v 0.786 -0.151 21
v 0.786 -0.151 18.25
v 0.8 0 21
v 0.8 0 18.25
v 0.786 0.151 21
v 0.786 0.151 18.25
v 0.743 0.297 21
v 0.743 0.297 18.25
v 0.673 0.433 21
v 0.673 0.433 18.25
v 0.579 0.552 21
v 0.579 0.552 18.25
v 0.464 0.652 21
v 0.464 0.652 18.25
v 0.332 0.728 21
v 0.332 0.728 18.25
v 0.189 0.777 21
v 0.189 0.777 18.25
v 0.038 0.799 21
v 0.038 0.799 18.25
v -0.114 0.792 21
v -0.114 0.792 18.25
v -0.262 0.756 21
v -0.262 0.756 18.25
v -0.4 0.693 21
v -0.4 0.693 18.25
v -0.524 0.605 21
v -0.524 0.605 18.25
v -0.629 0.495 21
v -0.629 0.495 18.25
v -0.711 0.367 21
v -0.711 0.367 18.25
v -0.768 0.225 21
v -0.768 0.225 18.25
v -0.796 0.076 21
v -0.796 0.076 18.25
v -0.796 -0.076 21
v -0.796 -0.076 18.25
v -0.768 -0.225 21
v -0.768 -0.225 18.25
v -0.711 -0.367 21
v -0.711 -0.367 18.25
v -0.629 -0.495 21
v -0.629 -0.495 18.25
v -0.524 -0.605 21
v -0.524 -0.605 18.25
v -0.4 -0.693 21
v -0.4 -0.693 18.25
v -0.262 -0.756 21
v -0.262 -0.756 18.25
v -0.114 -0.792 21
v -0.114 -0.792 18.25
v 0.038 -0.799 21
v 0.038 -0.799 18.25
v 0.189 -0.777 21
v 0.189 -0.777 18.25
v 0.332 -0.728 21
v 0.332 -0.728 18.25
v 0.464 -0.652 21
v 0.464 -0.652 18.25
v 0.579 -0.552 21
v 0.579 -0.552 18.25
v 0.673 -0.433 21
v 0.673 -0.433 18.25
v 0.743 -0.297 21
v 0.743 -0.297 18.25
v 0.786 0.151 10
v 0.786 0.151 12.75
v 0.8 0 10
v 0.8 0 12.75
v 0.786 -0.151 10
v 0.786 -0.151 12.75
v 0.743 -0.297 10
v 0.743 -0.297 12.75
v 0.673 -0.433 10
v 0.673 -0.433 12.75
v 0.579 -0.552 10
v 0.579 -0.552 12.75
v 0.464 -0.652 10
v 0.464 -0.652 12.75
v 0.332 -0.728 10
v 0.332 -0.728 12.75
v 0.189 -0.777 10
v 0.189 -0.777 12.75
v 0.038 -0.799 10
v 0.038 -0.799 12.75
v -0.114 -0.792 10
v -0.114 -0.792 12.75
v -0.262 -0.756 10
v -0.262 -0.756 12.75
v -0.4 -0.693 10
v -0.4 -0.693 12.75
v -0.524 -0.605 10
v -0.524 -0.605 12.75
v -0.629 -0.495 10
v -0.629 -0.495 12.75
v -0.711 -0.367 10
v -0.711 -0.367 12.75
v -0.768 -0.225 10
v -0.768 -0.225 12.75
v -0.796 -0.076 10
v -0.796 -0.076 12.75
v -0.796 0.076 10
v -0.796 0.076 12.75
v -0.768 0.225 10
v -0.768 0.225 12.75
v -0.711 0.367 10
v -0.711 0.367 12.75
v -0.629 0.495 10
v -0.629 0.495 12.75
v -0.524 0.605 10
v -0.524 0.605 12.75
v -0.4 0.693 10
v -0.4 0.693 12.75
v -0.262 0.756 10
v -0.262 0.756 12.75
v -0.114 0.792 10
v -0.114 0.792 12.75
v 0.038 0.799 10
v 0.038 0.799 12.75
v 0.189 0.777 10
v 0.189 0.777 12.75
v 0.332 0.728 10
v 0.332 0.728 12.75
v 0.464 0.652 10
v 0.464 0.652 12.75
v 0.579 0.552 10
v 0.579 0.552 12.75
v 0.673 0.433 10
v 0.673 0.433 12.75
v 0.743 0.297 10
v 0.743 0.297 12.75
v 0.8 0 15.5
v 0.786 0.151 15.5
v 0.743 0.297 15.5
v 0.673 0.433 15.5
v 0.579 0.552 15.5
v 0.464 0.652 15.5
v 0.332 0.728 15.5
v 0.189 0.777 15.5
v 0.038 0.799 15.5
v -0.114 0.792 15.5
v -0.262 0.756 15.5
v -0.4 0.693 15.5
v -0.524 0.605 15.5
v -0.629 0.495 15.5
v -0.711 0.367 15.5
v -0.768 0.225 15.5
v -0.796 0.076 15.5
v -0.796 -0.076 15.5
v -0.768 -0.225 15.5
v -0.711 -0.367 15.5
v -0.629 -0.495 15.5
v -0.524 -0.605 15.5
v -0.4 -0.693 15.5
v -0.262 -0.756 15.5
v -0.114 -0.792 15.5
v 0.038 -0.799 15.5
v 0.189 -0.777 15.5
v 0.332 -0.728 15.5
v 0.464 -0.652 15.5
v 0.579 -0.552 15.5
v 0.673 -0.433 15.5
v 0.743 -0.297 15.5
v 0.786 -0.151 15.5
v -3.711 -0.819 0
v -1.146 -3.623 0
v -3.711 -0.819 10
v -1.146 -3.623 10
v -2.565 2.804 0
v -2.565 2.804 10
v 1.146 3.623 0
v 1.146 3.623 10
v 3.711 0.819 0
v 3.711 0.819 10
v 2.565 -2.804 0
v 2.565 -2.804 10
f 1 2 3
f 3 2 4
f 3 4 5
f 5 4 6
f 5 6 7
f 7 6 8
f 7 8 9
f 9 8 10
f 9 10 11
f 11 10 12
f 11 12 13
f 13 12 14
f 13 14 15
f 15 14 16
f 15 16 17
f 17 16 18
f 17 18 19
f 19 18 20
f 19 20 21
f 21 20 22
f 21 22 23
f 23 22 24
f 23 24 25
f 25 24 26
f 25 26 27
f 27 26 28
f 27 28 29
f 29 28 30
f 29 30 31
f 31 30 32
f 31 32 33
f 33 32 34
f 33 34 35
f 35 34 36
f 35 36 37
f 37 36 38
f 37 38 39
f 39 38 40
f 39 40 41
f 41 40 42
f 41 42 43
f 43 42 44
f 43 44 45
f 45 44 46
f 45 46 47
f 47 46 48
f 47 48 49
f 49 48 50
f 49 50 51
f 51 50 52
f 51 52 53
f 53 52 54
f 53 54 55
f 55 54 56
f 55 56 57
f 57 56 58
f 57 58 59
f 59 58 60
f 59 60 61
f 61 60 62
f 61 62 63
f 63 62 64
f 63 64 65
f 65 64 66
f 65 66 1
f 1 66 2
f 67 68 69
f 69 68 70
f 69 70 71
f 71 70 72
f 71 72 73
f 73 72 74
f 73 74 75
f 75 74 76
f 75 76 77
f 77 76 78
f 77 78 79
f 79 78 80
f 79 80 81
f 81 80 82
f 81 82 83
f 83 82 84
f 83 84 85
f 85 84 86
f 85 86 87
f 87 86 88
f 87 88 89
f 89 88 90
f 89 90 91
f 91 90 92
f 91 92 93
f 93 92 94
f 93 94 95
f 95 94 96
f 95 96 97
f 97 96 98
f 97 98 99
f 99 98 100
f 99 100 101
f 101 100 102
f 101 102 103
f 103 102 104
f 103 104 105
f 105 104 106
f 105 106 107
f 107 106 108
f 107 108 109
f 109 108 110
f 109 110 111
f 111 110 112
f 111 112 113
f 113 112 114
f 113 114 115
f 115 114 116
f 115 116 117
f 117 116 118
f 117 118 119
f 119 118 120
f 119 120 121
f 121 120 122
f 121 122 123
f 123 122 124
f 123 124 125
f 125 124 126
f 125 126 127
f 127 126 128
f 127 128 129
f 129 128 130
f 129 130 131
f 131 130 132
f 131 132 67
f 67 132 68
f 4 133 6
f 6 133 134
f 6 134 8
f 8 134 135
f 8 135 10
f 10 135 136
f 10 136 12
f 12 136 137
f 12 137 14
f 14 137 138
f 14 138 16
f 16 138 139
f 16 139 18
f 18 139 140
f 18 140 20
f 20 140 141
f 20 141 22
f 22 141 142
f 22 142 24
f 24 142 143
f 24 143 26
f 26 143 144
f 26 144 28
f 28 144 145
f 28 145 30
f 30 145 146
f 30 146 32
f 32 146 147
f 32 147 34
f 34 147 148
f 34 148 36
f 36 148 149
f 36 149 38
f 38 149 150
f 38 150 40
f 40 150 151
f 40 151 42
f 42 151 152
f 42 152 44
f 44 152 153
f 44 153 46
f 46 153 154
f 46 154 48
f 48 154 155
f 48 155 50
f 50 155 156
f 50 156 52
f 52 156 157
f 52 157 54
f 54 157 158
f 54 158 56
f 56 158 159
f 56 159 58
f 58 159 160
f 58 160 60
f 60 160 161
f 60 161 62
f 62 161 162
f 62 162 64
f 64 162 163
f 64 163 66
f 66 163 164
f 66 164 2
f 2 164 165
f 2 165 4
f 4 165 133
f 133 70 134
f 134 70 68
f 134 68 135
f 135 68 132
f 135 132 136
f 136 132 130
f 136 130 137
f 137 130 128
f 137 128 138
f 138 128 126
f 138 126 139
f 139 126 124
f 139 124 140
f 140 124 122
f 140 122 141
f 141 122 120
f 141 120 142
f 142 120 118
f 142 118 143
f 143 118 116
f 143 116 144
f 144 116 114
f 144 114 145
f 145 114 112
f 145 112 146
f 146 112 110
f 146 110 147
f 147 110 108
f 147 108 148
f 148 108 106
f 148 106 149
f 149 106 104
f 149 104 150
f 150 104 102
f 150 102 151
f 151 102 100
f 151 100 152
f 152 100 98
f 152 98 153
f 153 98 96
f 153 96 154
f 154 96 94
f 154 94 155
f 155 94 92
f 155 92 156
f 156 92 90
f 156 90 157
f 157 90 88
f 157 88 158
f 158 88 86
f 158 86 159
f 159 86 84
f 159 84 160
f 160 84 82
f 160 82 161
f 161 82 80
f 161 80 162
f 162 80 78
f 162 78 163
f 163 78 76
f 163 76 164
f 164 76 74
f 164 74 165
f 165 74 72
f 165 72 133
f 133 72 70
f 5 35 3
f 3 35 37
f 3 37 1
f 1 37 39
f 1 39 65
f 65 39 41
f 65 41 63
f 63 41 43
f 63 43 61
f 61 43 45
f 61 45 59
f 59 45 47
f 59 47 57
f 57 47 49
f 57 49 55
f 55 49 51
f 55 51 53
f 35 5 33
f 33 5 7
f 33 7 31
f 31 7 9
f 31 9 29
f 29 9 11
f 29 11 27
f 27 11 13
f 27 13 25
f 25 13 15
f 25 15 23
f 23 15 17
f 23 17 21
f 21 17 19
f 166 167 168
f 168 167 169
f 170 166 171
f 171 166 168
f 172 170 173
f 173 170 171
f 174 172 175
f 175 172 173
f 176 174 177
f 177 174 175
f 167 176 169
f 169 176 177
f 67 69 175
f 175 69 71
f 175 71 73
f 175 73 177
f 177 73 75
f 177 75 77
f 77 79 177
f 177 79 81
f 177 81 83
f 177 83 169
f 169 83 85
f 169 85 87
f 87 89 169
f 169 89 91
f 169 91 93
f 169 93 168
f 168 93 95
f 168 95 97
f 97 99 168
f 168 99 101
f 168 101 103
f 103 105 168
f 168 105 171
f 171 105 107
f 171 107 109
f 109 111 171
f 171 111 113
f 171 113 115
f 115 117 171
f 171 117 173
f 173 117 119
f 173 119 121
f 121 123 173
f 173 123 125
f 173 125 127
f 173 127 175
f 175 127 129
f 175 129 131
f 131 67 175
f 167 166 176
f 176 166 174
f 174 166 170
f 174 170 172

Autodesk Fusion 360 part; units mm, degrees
sketch "Sketch1" plane through (0, 0, 0) normal (0, 0, 1) x (1, 0, 0)
  line L0 (2.5647, -2.804) -> (3.7107, 0.819)
  line L1 (3.7107, 0.819) -> (1.146, 3.6231)
  line L2 (1.146, 3.6231) -> (-2.5647, 2.804)
  line L3 (-2.5647, 2.804) -> (-3.7107, -0.819)
  line L4 (-3.7107, -0.819) -> (-1.146, -3.6231)
  line L5 (-1.146, -3.6231) -> (2.5647, -2.804)
  dimension "d1" = 3.8
extrude "Extrude1" add sketch "Sketch1" along normal blind 10
sketch "Sketch2" plane through (0, 0, 10) normal (0, 0, 1) x (-1, 0, 0)
  line L0 (1.146, 3.6231) -> (-2.5647, 2.804)
  line L1 (-2.5647, 2.804) -> (-3.7107, -0.819)
  line L2 (-3.7107, -0.819) -> (-1.146, -3.6231)
  line L3 (-1.146, -3.6231) -> (2.5647, -2.804)
  line L4 (2.5647, -2.804) -> (3.7107, 0.819)
  line L5 (3.7107, 0.819) -> (1.146, 3.6231)
  circle A0 centre (0, 0) radius 0.8
  dimension "d6" = 1.6
extrude "Extrude2" add sketch "Sketch2" along normal blind 11 contours A0
equation "d1 = polygon_side"
equation "d2 = polygon_height"
equation "polygon_side = 3.8 mm"
equation "polygon_height = 10 mm"
equation "d6 = cylinder_radius * 2"
equation "cylinder_radius = 0.8 mm"
equation "cylinder_height = 11 mm"
equation "d9 = cylinder_height"
